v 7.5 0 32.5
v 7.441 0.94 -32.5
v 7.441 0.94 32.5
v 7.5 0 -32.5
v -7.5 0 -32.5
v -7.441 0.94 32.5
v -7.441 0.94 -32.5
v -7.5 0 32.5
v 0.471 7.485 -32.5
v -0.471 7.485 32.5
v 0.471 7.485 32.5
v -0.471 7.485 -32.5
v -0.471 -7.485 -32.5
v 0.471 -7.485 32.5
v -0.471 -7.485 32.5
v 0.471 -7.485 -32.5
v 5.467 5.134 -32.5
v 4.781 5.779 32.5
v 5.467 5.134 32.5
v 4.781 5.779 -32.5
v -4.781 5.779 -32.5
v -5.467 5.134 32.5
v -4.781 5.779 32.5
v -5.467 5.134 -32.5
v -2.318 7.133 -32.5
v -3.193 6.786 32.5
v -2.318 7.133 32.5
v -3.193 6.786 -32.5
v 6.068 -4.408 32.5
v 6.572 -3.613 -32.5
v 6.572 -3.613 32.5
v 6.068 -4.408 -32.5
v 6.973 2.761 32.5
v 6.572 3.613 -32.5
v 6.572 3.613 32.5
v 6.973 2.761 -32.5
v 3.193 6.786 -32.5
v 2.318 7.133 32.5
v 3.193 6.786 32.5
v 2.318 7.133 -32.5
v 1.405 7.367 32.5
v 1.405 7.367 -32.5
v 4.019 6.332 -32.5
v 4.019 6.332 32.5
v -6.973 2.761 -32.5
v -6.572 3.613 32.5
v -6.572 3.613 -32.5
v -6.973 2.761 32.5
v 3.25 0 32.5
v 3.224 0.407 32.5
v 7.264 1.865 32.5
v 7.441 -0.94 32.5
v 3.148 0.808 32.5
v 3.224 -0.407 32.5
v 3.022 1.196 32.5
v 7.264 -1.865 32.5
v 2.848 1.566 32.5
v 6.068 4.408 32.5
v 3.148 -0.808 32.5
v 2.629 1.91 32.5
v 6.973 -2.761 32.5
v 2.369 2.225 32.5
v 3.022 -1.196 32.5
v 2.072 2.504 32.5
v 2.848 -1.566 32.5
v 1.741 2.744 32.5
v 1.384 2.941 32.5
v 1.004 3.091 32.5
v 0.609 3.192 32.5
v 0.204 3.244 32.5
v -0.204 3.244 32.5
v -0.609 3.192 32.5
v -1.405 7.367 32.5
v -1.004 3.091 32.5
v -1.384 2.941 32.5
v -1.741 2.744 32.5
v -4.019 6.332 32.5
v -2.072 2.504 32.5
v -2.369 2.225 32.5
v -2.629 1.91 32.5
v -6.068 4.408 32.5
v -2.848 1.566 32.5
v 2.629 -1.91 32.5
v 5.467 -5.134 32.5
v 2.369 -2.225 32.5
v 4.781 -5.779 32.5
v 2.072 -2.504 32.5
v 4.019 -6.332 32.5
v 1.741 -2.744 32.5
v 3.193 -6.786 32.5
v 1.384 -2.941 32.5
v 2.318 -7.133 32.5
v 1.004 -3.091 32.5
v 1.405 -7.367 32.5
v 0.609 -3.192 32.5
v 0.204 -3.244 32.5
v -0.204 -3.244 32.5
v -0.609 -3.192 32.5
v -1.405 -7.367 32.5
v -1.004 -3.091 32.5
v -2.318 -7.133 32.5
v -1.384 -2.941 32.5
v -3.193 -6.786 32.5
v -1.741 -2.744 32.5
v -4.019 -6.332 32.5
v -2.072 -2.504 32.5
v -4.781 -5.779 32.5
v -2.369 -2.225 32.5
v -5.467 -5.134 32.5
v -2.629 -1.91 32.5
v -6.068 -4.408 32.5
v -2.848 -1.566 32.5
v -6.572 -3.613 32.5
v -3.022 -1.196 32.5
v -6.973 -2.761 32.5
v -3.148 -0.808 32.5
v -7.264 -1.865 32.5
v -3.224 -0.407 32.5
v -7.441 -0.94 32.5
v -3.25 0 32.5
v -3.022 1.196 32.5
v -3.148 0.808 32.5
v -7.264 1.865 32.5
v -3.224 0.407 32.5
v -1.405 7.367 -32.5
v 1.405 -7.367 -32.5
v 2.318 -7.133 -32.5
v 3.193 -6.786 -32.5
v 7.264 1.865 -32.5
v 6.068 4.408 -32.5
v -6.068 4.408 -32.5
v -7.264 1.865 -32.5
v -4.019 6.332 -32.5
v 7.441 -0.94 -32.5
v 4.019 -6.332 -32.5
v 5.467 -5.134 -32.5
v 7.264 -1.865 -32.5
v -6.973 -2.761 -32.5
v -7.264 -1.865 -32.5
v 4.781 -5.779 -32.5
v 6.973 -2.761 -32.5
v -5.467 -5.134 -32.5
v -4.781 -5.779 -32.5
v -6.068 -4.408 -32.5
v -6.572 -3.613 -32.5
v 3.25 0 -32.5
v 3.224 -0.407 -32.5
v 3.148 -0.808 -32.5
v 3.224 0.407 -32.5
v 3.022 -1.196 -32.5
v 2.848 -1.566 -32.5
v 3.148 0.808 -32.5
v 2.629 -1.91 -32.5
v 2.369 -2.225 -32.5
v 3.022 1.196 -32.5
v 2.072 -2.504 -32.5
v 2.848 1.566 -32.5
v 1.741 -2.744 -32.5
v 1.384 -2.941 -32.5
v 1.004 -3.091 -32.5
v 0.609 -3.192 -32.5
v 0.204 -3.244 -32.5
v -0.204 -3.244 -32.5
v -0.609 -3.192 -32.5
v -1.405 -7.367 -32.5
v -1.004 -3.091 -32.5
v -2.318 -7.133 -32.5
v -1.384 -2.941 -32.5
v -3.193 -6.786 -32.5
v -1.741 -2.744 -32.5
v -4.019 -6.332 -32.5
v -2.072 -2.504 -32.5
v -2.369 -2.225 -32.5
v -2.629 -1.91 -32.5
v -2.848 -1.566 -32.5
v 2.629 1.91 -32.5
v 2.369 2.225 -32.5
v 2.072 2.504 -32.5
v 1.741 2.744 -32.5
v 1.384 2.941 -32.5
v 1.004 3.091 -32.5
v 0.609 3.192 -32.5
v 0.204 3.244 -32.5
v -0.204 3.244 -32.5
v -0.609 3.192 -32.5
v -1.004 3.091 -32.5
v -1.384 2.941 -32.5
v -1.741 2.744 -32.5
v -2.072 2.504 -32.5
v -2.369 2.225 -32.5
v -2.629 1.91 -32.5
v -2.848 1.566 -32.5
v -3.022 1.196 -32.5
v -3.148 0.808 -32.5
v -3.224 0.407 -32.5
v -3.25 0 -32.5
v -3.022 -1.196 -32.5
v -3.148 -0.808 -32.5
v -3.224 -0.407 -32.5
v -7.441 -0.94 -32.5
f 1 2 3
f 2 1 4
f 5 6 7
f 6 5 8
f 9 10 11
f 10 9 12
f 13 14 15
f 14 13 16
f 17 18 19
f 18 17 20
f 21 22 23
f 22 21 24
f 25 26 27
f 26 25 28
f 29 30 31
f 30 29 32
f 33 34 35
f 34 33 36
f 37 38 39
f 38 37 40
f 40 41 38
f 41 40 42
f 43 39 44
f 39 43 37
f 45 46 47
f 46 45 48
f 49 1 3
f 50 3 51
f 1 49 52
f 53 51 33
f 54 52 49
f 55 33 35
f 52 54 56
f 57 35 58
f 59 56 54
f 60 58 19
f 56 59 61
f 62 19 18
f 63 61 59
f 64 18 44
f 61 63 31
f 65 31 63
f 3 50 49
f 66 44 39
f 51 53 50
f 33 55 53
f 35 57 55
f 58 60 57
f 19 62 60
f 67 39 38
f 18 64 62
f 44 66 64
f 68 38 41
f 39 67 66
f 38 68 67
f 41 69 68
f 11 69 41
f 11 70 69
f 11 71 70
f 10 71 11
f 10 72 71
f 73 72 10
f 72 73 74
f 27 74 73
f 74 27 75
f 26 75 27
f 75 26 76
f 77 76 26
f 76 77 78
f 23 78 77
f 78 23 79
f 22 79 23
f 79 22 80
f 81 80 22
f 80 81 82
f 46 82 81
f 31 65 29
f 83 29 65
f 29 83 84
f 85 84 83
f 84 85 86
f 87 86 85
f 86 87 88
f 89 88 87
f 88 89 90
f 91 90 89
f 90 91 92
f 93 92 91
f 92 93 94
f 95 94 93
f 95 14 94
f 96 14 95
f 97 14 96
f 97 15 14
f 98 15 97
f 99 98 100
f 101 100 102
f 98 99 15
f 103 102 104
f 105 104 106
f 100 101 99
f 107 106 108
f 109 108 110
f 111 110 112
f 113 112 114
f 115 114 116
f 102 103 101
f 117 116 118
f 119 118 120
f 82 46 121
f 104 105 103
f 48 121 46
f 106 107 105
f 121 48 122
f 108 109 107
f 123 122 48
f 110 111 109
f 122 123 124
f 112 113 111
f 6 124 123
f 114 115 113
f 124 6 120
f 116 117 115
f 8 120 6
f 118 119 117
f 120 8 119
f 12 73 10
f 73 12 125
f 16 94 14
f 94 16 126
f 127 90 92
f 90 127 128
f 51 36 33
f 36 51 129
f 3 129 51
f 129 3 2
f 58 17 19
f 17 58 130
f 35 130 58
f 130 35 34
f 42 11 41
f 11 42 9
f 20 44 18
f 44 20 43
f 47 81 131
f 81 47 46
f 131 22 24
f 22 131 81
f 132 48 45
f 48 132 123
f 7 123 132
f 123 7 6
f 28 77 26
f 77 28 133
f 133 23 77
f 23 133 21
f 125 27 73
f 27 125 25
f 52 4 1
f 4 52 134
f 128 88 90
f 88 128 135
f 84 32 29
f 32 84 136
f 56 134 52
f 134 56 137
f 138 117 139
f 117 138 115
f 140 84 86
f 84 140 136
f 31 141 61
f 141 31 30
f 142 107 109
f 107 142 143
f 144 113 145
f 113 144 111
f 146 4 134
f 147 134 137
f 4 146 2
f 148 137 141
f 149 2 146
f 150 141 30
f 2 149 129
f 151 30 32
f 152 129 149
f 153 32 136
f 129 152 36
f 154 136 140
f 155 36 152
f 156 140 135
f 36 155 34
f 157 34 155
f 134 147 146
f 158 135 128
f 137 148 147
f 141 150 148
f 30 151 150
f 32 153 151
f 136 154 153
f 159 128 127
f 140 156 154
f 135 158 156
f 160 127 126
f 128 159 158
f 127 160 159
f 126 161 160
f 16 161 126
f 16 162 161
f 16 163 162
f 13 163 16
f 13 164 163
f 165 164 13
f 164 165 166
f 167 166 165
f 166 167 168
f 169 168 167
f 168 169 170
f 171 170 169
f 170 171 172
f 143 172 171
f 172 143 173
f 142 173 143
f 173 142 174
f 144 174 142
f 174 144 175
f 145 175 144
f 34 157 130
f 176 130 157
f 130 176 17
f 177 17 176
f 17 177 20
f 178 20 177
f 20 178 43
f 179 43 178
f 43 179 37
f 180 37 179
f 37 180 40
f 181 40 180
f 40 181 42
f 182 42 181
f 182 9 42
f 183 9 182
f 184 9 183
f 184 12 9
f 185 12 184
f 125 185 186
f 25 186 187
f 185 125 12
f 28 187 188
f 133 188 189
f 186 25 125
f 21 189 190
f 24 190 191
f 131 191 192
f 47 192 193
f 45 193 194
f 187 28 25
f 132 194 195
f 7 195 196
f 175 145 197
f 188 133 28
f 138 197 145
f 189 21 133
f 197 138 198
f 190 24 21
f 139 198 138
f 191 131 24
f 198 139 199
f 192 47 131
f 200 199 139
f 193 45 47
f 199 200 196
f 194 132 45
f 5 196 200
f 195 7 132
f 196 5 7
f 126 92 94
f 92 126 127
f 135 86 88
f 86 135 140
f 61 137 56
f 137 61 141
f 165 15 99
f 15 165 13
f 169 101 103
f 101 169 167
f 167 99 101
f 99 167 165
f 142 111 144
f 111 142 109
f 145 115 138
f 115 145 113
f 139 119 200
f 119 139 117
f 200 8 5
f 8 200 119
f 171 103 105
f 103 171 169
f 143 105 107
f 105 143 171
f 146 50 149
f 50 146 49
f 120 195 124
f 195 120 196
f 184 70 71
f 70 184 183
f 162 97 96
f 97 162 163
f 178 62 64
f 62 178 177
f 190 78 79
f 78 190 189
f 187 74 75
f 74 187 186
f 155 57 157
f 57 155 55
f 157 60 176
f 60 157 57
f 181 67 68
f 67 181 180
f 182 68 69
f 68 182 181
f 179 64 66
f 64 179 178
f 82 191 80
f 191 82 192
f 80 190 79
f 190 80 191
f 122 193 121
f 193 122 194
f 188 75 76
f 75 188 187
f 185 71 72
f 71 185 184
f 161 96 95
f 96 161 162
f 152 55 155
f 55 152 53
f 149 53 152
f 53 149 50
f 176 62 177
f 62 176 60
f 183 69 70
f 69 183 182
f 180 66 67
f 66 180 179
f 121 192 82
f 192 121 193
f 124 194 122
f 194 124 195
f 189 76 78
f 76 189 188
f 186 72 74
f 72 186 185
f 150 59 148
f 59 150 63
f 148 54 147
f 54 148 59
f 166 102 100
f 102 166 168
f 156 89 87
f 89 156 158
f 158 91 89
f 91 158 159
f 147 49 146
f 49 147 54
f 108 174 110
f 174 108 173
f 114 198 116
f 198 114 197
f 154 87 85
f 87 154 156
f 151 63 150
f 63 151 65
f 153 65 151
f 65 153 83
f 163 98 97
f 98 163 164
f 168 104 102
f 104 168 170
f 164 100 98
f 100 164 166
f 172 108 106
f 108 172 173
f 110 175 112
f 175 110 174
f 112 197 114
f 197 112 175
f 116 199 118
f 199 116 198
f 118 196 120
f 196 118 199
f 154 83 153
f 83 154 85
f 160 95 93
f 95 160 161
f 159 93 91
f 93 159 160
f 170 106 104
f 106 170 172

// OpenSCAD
$fn = 50;


difference() {
	union() {
		translate(v = [0, 0, -32.5000000000]) {
			cylinder(h = 65, r = 7.5000000000);
		}
	}
	union() {
		translate(v = [0, 0, -100.0000000000]) {
			cylinder(h = 200, r = 3.2500000000);
		}
	}
}
